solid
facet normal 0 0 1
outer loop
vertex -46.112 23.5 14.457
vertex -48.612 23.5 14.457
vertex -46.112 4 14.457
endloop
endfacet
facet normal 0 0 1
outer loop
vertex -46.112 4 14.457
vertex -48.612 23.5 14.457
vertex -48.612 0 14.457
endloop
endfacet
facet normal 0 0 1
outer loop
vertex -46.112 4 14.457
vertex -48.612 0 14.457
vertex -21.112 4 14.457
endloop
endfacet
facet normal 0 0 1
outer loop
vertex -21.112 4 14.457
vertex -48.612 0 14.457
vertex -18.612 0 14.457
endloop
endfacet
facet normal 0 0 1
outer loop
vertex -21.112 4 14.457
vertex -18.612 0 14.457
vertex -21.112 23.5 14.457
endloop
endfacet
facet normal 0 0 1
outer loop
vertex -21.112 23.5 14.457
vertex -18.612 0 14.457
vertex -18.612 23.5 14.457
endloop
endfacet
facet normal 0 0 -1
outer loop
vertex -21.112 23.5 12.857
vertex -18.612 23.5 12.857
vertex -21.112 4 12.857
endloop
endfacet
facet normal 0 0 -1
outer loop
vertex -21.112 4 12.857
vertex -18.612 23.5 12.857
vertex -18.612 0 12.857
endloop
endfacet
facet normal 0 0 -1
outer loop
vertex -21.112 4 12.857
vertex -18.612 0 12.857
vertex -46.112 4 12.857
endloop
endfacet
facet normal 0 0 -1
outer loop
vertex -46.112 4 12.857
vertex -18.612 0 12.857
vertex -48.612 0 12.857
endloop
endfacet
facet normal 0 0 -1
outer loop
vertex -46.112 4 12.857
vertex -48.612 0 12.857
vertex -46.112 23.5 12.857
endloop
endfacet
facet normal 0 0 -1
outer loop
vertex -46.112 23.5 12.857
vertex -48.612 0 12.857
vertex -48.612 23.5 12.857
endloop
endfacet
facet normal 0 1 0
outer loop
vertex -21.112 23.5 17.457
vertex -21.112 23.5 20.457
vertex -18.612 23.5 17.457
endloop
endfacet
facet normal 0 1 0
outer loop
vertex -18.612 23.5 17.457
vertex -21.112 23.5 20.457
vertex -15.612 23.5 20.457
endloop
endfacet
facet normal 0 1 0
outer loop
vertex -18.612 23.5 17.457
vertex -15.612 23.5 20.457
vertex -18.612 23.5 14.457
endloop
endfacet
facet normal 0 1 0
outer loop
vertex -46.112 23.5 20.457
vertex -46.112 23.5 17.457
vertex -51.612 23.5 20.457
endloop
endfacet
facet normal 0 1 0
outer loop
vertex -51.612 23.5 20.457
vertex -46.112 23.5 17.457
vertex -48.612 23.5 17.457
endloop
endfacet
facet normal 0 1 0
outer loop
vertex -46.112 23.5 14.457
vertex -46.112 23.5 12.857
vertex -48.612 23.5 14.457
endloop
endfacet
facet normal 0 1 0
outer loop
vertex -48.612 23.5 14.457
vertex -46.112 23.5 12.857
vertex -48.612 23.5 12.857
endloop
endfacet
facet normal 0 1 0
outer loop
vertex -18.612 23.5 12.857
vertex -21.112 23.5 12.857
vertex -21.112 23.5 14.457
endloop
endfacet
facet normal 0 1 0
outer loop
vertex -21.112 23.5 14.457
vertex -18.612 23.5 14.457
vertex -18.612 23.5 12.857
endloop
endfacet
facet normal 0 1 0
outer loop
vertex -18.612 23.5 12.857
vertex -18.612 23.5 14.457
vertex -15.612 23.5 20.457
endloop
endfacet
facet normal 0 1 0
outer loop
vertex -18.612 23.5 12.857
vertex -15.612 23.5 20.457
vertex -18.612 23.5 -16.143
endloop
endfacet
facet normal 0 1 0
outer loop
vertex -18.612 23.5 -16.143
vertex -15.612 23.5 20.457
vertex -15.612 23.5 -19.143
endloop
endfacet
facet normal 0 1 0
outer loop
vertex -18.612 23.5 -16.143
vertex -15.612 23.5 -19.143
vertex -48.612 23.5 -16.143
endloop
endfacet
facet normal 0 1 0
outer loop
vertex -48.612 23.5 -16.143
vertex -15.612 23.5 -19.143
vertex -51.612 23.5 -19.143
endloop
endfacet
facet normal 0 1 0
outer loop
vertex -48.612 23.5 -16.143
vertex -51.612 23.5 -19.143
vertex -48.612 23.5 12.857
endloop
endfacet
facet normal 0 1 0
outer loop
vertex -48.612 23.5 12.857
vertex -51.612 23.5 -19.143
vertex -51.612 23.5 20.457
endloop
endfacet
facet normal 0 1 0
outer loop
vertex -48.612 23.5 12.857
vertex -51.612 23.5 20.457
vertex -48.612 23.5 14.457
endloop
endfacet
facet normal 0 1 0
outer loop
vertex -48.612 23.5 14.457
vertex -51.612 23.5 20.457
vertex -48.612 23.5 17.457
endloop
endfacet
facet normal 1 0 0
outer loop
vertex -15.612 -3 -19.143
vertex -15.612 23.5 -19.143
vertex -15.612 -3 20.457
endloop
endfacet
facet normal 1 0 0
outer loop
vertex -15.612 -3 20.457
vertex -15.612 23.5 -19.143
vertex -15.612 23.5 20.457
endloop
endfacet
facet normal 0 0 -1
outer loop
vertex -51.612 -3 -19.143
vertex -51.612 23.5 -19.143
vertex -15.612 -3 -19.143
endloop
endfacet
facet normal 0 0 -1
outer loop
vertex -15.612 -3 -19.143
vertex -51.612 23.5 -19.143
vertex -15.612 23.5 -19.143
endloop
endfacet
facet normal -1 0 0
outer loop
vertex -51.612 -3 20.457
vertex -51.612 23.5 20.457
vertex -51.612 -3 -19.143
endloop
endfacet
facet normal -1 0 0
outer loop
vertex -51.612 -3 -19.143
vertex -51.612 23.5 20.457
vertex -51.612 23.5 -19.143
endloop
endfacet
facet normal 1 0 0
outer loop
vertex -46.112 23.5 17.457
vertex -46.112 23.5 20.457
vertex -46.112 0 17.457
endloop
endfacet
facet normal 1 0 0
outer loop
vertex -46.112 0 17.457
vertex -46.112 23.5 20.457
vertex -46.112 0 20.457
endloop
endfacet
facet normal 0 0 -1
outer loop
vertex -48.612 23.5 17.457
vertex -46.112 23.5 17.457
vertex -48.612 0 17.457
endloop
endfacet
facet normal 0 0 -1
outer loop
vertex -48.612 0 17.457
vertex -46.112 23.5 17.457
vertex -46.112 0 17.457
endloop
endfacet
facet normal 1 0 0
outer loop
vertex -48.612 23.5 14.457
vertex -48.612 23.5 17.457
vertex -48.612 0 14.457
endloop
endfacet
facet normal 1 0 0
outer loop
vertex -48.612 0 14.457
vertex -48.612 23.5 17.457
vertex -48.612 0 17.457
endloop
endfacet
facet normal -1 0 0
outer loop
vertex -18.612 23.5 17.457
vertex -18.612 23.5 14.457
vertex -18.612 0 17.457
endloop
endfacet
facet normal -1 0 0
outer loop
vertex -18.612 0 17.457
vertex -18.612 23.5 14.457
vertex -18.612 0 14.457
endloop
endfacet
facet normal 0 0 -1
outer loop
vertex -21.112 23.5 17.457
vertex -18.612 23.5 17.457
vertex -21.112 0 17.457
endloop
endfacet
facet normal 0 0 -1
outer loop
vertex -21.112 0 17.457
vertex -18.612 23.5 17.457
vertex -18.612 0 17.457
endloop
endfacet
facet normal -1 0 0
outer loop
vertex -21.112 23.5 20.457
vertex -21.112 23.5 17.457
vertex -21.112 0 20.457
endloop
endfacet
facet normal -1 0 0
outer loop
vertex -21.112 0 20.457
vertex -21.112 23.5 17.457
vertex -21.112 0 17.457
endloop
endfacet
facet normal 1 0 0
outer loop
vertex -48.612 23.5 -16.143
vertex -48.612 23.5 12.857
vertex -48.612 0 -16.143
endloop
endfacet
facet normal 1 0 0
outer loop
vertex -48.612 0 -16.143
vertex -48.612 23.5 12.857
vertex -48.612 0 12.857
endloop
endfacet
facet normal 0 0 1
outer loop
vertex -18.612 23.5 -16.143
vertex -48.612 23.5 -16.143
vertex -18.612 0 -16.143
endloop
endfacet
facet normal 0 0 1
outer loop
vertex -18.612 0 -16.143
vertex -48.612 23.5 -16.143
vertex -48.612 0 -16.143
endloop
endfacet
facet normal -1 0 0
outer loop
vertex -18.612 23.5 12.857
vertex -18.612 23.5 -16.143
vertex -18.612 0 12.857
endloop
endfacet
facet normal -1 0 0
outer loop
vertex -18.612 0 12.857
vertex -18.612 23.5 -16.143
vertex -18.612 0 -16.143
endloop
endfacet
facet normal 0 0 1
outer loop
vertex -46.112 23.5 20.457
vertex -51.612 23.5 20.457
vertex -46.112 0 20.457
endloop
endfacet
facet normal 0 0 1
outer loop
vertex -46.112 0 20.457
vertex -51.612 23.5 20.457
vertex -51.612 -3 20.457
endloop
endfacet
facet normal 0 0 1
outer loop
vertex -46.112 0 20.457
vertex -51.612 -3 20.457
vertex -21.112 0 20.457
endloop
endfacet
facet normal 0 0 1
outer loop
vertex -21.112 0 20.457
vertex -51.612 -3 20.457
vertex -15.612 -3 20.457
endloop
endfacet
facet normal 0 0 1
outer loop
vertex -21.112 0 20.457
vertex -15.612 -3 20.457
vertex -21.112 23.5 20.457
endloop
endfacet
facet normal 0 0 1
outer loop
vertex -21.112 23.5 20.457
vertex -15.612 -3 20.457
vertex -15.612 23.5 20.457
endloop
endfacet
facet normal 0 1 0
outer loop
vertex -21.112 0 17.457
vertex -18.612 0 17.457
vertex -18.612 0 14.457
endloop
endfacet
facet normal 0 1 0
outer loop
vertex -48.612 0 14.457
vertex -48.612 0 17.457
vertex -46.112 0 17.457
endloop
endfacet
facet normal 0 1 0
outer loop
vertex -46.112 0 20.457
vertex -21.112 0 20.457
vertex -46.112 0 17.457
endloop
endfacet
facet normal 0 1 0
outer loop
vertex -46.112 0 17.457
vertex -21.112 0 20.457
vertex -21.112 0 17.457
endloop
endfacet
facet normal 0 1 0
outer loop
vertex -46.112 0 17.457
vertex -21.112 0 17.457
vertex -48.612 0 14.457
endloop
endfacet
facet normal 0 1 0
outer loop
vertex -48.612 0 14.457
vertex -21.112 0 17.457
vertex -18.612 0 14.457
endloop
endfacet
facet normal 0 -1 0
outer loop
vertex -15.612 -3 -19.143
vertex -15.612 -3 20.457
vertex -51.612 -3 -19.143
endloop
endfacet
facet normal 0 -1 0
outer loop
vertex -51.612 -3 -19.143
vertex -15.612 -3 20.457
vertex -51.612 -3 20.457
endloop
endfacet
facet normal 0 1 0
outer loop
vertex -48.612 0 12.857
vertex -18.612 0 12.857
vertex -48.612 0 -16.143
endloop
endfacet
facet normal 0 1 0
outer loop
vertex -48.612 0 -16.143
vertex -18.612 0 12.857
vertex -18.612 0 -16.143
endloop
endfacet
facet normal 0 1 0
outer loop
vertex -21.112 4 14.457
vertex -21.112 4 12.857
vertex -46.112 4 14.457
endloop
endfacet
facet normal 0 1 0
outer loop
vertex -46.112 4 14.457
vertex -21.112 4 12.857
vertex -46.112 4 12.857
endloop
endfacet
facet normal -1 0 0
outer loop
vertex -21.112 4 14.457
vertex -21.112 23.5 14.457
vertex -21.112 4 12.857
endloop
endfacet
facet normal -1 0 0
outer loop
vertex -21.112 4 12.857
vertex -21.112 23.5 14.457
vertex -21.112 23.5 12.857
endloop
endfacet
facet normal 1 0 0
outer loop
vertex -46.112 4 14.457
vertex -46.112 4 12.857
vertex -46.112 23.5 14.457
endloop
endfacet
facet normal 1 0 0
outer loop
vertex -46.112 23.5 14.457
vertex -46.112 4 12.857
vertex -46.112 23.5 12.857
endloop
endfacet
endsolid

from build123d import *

# Parameters (mm, degrees)
BOSS_EXTRUDE1_DEPTH = 23.5
SKETCH2_W           = 36
SKETCH2_H           = 39.6
BOSS_EXTRUDE2_DEPTH = 3
CUT_EXTRUDE3_REACH  = 67.916
SKETCH5_W           = 25
SKETCH5_H           = 19.5


with BuildPart() as part:
    # Sketch1 → Boss-Extrude1 (new body)
    with BuildSketch(Plane(origin=(0, 0, 0), x_dir=(1, 0, 0), z_dir=(0, 1, 0))):
        Polygon((-48.611740356, -17.456705616), (-48.611740356, -16.615368715), (-48.611740356, -14.456705616), (-48.611740356, -12.856705616), (-48.611740356, 16.143294384), (-48.611740356, 19.143294384), (-51.611740356, 19.143294384), (-51.611740356, -20.456705616), (-46.111740356, -20.456705616), (-46.111740356, -17.456705616), align=None)
        Polygon((-48.611740356, -12.856705616), (-48.611740356, -14.456705616), (-18.611740356, -14.456705616), (-18.611740356, -17.456705616), (-21.111740356, -17.456705616), (-21.111740356, -20.456705616), (-15.611740356, -20.456705616), (-15.611740356, 19.143294384), (-48.611740356, 19.143294384), (-48.611740356, 16.143294384), (-18.611740356, 16.143294384), (-18.611740356, -12.856705616), align=None)
    extrude(amount=BOSS_EXTRUDE1_DEPTH)

    # Sketch2 → Boss-Extrude2 (add)
    with BuildSketch(Plane.XZ):
        with Locations((-33.611740356, 0.656705616)):
            Rectangle(SKETCH2_W, SKETCH2_H)
    extrude(amount=BOSS_EXTRUDE2_DEPTH)

    # Sketch5 → Cut-Extrude3 (cut, up to next)
    with BuildSketch(Plane.XY.offset(14.456705616), mode=Mode.PRIVATE) as cut_extrude3_sk1:
        with Locations((-33.611740356, 13.75)):
            Rectangle(SKETCH5_W, SKETCH5_H)
    cut_extrude3_tool1 = extrude(cut_extrude3_sk1.sketch, amount=-CUT_EXTRUDE3_REACH, mode=Mode.PRIVATE) & part.part
    add(cut_extrude3_tool1.solids().sort_by_distance((-33.61174, 13.75, 14.456706))[0], mode=Mode.SUBTRACT)


solid = part.part
